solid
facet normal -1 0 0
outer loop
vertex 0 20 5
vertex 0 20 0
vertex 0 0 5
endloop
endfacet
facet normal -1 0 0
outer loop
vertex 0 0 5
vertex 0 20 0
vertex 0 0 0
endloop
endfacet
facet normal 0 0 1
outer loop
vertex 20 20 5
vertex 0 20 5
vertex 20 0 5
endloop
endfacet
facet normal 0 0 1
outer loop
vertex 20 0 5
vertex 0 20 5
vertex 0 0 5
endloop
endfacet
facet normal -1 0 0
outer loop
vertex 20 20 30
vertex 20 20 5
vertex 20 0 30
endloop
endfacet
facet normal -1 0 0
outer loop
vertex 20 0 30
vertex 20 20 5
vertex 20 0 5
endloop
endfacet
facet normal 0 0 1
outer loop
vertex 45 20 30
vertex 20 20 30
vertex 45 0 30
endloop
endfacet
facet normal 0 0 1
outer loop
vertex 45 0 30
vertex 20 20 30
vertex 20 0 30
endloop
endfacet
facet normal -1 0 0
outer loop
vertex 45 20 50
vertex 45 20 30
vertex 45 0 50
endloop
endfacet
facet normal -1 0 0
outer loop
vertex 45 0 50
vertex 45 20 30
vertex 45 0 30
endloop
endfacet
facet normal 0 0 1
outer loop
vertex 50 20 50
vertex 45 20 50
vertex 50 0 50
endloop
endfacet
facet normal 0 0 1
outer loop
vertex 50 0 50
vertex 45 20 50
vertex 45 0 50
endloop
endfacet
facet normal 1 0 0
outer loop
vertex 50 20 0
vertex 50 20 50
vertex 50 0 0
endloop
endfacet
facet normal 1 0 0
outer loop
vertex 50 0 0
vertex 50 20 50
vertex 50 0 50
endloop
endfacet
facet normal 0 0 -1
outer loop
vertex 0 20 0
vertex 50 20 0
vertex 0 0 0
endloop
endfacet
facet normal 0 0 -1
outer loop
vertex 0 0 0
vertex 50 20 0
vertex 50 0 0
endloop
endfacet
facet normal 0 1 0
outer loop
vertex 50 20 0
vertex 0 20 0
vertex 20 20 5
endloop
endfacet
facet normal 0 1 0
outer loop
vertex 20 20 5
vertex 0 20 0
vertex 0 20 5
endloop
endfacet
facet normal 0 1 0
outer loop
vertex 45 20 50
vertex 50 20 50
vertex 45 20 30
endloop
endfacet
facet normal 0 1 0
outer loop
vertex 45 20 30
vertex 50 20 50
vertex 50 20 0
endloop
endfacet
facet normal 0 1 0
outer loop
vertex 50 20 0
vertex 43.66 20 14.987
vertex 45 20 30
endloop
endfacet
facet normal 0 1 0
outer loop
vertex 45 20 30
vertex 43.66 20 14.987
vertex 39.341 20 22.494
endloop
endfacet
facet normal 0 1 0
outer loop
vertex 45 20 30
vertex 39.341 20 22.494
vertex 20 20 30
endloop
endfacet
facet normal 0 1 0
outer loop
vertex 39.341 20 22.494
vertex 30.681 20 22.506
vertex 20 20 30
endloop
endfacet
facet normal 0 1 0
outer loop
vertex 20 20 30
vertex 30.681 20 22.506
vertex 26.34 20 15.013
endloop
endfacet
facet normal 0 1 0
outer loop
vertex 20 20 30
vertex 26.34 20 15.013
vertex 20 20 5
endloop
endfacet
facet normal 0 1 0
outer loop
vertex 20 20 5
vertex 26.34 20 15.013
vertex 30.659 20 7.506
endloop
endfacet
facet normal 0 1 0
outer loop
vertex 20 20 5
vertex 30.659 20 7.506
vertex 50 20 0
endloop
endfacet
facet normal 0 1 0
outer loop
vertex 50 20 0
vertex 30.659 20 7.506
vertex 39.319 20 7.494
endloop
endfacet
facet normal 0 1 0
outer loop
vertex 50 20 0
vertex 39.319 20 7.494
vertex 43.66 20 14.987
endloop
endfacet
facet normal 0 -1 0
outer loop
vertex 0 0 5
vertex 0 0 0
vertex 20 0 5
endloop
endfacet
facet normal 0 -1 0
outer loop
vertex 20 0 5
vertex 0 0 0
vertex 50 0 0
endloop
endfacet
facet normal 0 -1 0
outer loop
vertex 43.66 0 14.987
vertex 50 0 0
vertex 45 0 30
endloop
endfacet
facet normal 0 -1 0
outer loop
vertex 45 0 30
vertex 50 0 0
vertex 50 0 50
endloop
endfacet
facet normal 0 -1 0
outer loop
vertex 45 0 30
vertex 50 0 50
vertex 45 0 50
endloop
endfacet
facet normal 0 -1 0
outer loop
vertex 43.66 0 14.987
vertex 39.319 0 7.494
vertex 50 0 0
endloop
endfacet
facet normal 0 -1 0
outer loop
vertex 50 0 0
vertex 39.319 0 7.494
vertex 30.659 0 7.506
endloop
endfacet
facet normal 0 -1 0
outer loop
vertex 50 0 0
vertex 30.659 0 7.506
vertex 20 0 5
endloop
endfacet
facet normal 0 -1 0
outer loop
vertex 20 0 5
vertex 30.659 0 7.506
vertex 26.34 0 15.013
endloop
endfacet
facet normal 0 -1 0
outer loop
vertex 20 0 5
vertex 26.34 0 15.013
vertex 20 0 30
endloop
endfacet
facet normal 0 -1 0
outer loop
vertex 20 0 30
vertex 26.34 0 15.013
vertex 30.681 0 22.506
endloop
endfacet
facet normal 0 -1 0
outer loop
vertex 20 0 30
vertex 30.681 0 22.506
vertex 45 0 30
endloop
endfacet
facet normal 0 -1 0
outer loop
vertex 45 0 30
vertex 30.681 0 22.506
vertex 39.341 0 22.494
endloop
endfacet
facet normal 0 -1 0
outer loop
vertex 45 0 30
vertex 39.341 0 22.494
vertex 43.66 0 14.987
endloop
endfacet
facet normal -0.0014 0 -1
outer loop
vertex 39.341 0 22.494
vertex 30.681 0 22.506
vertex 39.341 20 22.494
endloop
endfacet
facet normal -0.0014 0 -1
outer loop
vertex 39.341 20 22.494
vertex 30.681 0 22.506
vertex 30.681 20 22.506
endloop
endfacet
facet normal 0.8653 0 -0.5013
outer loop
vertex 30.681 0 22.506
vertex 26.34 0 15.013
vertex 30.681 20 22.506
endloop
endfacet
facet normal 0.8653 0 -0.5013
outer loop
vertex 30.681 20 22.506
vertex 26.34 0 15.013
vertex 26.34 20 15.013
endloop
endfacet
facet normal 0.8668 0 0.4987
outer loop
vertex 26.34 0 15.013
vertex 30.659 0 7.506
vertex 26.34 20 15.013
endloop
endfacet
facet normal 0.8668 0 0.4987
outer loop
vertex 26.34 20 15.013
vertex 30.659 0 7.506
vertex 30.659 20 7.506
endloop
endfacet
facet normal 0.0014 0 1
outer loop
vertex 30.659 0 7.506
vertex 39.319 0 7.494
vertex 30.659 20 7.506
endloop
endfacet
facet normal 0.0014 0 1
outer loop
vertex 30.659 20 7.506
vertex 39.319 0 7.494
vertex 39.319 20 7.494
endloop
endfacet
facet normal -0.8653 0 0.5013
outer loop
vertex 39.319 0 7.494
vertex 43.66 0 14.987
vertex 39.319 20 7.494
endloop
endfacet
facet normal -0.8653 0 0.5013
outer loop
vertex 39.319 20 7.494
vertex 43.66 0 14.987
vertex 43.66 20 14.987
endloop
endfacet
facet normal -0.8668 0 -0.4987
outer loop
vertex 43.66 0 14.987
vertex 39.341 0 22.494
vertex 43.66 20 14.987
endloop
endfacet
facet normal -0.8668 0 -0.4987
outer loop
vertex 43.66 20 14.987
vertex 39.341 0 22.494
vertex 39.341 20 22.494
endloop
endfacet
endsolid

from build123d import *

# Parameters (mm, degrees)
BOSS_EXTRUDE1_DEPTH = 20
CUT_EXTRUDE1_DEPTH  = 20


with BuildPart() as part:
    # Sketch2 → Boss-Extrude1 (new body)
    with BuildSketch(Plane(origin=(0, 0, 0), x_dir=(1, 0, 0), z_dir=(0, 1, 0))):
        Polygon((0, 0), (50, 0), (50, -50), (45, -50), (45, -30), (20, -30), (20, -5), (0, -5), align=None)
    extrude(amount=BOSS_EXTRUDE1_DEPTH)

    # Sketch3 → Cut-Extrude1 (cut)
    with BuildSketch(Plane(origin=(0, 20, 0), x_dir=(1, 0, 0), z_dir=(0, 1, 0))):
        Polygon((39.341240981, -22.493572362), (43.660244521, -14.987161207), (39.31900354, -7.493588845), (30.658759019, -7.506427638), (26.339755479, -15.012838793), (30.68099646, -22.506411155), align=None)
    extrude(amount=-CUT_EXTRUDE1_DEPTH, mode=Mode.SUBTRACT)


solid = part.part
